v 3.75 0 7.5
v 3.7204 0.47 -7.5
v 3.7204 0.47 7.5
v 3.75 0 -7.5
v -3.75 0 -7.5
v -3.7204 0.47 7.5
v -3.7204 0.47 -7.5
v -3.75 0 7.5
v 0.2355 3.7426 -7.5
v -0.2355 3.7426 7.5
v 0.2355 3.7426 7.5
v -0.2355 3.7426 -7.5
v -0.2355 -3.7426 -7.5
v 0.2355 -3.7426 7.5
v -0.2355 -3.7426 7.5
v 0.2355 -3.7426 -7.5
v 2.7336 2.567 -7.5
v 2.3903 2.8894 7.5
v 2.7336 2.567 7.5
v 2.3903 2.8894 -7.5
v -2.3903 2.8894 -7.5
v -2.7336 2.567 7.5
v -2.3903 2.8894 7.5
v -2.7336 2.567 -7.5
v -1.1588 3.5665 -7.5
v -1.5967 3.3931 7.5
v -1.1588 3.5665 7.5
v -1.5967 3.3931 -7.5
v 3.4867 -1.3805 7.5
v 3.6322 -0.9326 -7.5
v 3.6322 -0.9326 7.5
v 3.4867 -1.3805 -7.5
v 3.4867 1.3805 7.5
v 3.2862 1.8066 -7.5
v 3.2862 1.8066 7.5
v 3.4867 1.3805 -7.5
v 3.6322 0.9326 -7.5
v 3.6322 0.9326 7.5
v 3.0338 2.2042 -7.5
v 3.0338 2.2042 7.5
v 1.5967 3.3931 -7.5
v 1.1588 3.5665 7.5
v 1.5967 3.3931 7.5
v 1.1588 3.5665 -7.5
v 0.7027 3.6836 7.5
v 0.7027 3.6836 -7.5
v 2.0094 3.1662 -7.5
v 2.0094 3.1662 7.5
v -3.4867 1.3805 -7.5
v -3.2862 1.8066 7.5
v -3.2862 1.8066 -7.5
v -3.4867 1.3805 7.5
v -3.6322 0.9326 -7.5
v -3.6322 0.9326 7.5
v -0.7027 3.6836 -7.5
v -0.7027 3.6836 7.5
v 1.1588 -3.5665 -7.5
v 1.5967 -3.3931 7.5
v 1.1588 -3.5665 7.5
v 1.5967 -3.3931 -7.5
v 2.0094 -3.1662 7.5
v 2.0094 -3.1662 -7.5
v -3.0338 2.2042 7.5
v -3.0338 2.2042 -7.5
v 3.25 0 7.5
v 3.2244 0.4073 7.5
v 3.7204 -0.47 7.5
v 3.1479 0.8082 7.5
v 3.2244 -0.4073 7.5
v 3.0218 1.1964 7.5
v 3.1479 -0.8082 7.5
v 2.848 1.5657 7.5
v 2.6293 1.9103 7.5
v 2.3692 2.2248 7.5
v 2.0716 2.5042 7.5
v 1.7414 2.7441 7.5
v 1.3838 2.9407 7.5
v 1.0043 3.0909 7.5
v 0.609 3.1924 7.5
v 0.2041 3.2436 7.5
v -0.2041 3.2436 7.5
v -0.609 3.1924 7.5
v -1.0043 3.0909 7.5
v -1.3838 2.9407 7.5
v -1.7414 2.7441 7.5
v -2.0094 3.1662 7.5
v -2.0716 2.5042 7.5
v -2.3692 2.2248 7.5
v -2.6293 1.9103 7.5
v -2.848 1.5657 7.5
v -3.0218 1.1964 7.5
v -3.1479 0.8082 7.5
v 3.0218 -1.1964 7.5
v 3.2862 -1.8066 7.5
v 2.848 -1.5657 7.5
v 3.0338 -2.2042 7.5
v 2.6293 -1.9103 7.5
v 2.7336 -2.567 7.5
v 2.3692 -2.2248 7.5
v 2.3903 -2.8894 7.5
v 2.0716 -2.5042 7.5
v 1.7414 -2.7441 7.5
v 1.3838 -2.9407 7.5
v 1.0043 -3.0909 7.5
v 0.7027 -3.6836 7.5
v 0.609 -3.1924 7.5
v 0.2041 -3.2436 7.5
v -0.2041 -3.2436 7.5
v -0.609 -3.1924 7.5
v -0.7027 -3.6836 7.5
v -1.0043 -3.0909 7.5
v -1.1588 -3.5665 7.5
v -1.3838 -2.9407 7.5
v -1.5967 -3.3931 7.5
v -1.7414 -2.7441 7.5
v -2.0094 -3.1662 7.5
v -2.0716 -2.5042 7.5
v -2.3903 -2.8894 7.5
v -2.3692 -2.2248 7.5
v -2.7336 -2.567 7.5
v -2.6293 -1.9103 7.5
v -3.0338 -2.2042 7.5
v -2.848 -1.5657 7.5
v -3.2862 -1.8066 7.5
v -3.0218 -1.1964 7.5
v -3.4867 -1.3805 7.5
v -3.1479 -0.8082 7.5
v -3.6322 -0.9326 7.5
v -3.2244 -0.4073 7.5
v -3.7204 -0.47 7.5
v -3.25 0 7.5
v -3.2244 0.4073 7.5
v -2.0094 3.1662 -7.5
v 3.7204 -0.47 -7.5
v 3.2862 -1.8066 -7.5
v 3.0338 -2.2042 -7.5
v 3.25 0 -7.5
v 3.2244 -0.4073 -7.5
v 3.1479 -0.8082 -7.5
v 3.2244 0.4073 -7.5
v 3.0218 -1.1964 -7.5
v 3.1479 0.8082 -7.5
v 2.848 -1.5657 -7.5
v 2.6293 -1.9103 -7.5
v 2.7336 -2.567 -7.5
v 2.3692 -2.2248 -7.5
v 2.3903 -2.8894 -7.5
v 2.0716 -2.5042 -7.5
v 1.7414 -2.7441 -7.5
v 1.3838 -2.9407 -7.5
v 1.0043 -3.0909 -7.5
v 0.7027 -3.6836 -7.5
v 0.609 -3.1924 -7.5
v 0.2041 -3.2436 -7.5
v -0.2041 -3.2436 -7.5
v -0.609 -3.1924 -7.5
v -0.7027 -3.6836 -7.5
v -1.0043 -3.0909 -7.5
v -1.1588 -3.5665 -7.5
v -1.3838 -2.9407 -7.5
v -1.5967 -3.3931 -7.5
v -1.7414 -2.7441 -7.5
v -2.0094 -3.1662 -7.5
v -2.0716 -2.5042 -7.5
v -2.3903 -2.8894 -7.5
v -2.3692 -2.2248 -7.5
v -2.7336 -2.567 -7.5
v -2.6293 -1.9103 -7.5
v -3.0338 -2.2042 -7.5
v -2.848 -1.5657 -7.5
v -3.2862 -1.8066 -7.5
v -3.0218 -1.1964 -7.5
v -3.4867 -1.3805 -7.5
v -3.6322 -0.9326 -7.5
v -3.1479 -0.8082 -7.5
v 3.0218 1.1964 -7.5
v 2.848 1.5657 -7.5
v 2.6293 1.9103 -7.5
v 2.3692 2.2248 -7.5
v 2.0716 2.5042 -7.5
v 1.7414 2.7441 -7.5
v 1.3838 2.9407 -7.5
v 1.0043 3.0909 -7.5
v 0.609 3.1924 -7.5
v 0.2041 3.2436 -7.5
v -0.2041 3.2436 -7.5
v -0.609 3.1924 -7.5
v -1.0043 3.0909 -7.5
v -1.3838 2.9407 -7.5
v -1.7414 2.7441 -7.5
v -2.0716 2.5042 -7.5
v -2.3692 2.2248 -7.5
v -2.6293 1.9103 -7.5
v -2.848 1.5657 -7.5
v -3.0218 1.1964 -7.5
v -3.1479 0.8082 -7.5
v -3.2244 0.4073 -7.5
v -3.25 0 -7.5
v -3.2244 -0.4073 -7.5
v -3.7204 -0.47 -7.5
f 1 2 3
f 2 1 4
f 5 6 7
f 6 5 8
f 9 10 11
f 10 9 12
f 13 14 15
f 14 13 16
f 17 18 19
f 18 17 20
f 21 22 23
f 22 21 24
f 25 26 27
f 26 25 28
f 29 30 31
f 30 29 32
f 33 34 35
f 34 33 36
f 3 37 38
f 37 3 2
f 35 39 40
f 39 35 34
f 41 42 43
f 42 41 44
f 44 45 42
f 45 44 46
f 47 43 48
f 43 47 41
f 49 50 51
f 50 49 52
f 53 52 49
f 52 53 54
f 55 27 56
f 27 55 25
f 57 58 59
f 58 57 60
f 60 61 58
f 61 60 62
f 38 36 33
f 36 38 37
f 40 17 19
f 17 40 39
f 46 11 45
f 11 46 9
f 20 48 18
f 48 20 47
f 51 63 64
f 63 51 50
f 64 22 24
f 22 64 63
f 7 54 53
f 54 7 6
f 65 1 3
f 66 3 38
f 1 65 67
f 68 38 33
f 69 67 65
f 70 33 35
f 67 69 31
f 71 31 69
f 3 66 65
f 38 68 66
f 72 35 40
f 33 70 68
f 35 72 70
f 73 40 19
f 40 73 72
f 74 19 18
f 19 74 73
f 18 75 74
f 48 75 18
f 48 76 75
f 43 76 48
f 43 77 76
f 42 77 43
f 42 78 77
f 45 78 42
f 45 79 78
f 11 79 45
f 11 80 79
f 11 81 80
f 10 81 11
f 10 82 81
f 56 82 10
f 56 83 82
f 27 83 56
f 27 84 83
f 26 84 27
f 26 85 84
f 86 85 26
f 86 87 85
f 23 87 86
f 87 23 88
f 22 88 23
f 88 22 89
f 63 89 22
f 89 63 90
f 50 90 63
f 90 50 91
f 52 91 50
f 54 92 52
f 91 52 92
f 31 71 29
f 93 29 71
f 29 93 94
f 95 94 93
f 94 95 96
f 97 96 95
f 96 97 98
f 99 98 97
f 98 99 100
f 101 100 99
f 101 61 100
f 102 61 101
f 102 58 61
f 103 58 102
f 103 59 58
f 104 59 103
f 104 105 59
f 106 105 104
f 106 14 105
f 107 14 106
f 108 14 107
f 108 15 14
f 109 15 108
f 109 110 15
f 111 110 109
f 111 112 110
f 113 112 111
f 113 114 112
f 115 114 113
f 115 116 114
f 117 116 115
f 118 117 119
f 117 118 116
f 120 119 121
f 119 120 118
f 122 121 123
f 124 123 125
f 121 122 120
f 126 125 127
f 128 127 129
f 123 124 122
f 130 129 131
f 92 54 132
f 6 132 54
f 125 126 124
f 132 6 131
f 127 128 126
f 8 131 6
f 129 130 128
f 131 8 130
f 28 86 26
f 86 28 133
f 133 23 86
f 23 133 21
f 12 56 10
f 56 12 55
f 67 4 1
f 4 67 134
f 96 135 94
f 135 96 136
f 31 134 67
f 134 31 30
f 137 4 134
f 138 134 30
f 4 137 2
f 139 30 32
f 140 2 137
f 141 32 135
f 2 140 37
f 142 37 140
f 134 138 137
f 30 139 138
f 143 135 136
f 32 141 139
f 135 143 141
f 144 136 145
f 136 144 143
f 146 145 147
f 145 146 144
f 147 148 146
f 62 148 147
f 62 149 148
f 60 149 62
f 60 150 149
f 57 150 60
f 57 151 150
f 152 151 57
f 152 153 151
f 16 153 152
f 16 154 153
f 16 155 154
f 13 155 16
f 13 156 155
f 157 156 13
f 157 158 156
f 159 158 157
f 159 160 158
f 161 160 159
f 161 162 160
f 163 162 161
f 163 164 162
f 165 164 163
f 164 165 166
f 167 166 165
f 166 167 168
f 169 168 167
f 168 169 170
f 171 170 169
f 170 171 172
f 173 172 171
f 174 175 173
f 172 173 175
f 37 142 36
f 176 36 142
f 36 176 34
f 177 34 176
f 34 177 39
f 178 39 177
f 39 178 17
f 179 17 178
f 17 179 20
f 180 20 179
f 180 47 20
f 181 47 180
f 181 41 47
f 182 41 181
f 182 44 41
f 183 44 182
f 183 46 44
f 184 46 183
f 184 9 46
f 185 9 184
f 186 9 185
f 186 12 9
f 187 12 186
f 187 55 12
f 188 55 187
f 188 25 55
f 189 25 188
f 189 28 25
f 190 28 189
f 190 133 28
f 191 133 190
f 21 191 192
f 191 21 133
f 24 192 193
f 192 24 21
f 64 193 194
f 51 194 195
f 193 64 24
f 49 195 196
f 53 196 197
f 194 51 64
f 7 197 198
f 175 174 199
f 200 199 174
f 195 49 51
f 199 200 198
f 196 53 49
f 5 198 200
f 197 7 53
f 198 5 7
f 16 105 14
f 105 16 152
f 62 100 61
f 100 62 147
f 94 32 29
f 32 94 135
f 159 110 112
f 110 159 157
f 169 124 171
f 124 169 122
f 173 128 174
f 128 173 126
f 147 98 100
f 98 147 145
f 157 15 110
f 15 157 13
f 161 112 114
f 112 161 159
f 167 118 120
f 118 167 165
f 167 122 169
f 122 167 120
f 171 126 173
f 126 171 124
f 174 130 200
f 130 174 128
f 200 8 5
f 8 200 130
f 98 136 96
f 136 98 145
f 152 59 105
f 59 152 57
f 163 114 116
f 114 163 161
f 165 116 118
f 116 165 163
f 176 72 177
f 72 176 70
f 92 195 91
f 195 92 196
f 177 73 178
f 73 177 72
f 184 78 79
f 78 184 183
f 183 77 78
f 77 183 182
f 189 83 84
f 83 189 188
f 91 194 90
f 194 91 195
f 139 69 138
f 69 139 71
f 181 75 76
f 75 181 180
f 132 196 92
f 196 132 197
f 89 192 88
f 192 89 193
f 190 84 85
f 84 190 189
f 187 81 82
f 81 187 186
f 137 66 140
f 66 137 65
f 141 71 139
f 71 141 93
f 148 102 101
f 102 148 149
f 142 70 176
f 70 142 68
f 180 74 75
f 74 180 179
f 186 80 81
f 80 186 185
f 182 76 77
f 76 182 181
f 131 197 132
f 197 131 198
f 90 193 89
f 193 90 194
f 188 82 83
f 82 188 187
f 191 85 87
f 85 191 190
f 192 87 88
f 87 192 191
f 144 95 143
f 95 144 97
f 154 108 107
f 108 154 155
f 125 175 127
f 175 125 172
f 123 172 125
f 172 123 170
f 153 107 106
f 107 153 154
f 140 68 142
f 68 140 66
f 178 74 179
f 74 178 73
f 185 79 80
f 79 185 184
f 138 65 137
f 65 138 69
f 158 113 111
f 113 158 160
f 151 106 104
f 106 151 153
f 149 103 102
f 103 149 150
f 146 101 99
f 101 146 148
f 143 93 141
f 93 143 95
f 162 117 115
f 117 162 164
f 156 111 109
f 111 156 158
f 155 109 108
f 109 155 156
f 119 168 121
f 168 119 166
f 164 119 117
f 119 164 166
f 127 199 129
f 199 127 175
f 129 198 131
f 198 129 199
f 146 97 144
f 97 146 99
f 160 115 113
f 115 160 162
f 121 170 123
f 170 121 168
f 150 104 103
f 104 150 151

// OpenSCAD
$fn = 50;


difference() {
	union() {
		translate(v = [0, 0, -7.5000000000]) {
			cylinder(h = 15, r = 3.7500000000);
		}
	}
	union() {
		translate(v = [0, 0, -100.0000000000]) {
			cylinder(h = 200, r = 3.2500000000);
		}
	}
}
